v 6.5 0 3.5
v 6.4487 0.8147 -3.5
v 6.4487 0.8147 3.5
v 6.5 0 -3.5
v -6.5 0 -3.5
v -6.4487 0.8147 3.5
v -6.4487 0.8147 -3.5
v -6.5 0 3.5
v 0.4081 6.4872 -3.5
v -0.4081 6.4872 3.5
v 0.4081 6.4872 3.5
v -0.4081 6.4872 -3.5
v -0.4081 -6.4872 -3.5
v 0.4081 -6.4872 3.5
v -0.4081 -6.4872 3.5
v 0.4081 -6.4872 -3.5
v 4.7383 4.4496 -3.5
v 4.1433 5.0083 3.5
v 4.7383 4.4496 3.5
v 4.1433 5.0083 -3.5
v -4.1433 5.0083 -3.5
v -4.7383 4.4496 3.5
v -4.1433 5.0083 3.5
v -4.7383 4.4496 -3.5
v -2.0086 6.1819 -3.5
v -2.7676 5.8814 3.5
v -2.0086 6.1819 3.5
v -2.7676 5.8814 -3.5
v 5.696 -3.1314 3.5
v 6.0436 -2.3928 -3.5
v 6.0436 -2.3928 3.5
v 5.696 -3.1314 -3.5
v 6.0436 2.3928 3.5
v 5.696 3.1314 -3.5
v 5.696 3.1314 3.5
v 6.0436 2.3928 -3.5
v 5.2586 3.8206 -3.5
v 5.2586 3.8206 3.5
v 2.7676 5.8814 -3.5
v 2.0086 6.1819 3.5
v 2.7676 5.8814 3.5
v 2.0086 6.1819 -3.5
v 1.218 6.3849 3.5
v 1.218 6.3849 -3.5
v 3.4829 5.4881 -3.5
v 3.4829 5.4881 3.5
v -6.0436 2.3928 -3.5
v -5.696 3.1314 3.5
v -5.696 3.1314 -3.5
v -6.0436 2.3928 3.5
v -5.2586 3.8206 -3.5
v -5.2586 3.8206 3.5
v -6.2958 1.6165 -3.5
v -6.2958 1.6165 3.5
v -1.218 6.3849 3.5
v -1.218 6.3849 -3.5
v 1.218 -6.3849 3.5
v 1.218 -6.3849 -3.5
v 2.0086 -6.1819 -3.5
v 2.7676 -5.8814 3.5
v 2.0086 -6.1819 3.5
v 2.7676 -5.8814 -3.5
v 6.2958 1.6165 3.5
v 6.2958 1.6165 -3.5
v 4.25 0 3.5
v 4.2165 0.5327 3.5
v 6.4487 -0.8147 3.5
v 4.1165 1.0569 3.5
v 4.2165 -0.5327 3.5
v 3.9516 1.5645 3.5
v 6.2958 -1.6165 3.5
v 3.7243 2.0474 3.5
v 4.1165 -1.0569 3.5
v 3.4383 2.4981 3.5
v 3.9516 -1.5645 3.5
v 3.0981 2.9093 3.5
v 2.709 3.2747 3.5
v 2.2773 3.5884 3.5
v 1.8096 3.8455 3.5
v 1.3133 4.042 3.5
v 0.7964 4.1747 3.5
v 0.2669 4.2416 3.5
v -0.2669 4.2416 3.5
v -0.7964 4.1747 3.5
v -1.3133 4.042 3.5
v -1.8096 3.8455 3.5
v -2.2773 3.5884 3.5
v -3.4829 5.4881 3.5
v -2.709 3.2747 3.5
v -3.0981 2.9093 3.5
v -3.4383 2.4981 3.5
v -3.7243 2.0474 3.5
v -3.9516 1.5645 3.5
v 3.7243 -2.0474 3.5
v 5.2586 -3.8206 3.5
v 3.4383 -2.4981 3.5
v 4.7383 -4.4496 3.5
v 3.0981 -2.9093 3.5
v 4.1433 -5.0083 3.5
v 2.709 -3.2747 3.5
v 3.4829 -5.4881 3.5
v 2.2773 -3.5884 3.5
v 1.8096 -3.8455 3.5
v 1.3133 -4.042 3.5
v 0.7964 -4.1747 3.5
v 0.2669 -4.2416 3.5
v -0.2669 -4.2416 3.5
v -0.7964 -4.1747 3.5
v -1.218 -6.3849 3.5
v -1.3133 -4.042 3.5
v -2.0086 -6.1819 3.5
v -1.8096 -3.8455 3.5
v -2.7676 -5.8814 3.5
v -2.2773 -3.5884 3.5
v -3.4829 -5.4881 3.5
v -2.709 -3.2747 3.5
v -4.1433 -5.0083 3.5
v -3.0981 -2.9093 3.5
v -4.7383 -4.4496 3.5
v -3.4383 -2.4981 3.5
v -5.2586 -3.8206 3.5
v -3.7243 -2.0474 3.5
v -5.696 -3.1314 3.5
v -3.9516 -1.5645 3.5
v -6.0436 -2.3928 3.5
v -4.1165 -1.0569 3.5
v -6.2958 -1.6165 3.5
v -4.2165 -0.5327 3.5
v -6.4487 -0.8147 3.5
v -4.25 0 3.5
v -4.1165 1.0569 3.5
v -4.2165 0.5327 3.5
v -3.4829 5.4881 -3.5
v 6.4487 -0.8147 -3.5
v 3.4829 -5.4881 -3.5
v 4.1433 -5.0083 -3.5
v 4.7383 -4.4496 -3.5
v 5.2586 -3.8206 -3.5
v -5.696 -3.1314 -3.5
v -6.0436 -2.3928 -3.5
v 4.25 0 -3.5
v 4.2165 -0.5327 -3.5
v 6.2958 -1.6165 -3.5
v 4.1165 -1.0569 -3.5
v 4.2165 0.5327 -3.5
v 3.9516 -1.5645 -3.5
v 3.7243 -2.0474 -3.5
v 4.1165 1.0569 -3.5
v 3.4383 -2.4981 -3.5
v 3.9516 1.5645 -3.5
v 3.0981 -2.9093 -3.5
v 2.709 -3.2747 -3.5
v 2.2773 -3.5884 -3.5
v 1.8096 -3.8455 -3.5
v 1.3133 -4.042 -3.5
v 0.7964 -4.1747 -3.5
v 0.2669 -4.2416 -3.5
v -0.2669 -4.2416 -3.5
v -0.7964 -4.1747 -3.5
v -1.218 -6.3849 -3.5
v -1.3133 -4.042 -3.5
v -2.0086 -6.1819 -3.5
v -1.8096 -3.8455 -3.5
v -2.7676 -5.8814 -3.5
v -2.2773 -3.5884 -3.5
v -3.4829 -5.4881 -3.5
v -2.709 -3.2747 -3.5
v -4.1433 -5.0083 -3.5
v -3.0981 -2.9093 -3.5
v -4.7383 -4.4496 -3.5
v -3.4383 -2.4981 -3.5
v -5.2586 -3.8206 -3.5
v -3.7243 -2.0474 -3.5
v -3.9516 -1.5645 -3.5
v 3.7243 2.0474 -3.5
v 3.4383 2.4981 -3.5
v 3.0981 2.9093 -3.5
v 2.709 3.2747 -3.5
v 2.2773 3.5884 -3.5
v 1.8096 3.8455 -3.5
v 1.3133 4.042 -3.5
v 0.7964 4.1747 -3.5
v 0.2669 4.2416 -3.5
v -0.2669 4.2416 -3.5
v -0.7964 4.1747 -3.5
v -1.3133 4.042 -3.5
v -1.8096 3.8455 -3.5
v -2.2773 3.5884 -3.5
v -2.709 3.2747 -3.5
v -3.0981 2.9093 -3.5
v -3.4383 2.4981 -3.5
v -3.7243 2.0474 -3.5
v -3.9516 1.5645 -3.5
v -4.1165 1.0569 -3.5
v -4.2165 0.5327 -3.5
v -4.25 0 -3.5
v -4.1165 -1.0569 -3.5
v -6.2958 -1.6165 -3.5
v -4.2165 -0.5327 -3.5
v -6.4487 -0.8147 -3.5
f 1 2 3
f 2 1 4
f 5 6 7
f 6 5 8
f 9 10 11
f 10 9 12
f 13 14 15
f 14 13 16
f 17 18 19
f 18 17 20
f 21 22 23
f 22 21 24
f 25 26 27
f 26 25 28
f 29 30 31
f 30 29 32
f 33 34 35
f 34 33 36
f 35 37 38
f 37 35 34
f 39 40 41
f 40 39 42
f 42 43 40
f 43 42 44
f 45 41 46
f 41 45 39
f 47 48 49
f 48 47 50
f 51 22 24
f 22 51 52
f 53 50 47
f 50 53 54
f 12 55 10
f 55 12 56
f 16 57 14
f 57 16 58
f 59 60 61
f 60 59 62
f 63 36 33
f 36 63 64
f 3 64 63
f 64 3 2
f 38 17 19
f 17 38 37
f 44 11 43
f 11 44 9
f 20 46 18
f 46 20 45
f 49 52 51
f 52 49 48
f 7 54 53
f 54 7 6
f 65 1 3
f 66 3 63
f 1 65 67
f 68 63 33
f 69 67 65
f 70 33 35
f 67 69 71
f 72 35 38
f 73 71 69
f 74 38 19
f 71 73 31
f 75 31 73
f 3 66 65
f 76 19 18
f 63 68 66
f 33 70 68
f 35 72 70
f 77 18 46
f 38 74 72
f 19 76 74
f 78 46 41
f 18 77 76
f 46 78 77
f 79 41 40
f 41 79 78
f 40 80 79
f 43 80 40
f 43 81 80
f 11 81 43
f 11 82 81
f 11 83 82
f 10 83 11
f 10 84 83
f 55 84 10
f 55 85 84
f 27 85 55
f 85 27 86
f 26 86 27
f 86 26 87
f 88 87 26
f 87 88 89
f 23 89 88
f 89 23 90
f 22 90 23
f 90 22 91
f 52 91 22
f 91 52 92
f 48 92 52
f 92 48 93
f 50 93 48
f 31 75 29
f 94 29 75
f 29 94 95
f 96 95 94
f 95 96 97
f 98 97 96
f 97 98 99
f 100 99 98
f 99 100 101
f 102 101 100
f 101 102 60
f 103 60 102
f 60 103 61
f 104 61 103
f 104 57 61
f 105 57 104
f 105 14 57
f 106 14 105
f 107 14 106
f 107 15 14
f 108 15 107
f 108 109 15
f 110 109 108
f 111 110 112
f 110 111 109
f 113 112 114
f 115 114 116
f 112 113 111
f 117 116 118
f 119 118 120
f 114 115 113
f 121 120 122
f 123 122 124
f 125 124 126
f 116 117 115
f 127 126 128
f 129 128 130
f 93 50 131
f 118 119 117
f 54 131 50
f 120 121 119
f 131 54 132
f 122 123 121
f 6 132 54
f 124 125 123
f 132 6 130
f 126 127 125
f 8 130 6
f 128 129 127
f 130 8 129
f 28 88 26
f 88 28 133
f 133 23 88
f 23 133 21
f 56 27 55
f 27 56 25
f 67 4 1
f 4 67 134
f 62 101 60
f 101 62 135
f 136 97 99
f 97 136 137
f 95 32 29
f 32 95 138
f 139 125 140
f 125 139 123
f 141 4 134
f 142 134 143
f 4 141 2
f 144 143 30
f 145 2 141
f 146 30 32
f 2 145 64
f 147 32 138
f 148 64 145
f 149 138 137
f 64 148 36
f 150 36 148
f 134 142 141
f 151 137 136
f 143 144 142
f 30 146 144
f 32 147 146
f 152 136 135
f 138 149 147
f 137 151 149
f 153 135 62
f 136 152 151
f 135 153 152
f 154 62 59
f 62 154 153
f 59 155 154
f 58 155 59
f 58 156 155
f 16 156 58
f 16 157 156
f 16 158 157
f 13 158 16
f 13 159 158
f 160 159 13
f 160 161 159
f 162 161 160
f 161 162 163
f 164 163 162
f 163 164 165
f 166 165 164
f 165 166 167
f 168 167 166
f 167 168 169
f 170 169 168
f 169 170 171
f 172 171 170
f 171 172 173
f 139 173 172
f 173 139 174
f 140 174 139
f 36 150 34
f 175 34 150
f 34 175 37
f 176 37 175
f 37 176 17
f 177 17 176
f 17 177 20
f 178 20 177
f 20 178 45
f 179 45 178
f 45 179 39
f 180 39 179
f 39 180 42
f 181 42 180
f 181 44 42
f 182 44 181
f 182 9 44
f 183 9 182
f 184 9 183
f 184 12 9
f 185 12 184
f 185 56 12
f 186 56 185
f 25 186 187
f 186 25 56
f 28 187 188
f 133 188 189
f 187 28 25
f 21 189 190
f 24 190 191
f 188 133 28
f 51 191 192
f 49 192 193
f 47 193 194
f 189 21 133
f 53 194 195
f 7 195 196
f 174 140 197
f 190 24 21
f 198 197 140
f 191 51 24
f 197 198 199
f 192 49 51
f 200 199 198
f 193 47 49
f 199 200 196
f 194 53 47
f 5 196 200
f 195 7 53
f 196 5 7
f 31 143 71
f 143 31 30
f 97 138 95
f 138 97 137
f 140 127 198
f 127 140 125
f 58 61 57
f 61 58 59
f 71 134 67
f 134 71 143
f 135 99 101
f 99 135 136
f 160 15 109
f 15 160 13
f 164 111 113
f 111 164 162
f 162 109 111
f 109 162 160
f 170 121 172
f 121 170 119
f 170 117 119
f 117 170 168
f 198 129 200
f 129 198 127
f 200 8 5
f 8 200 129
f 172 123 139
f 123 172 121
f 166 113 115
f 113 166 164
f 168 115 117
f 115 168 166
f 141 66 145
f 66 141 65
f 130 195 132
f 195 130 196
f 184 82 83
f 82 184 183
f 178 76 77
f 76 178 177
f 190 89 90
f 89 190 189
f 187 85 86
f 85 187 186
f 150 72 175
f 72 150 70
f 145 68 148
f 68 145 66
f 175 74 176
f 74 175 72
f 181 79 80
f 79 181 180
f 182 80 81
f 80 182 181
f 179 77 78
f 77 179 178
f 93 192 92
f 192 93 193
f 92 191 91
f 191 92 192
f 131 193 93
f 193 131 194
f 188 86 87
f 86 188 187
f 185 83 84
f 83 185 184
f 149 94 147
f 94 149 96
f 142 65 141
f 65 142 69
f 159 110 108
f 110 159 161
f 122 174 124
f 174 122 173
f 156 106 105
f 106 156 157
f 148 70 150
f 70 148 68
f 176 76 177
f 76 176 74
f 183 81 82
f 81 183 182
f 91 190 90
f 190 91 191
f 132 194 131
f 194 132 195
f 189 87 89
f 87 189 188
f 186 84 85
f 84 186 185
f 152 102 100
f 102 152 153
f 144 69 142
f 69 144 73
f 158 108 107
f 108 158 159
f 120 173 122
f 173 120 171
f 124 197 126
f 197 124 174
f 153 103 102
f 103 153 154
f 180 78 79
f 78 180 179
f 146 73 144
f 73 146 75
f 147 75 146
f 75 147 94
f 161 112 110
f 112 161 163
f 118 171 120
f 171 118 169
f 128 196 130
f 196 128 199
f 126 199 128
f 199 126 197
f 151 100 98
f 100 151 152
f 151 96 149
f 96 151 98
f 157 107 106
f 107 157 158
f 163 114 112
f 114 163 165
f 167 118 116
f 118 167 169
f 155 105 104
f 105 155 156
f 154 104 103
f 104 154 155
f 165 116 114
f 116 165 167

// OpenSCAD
$fn = 50;


difference() {
	union() {
		translate(v = [0, 0, -3.5000000000]) {
			cylinder(h = 7, r = 6.5000000000);
		}
	}
	union() {
		translate(v = [0, 0, -100.0000000000]) {
			cylinder(h = 200, r = 4.2500000000);
		}
	}
}
